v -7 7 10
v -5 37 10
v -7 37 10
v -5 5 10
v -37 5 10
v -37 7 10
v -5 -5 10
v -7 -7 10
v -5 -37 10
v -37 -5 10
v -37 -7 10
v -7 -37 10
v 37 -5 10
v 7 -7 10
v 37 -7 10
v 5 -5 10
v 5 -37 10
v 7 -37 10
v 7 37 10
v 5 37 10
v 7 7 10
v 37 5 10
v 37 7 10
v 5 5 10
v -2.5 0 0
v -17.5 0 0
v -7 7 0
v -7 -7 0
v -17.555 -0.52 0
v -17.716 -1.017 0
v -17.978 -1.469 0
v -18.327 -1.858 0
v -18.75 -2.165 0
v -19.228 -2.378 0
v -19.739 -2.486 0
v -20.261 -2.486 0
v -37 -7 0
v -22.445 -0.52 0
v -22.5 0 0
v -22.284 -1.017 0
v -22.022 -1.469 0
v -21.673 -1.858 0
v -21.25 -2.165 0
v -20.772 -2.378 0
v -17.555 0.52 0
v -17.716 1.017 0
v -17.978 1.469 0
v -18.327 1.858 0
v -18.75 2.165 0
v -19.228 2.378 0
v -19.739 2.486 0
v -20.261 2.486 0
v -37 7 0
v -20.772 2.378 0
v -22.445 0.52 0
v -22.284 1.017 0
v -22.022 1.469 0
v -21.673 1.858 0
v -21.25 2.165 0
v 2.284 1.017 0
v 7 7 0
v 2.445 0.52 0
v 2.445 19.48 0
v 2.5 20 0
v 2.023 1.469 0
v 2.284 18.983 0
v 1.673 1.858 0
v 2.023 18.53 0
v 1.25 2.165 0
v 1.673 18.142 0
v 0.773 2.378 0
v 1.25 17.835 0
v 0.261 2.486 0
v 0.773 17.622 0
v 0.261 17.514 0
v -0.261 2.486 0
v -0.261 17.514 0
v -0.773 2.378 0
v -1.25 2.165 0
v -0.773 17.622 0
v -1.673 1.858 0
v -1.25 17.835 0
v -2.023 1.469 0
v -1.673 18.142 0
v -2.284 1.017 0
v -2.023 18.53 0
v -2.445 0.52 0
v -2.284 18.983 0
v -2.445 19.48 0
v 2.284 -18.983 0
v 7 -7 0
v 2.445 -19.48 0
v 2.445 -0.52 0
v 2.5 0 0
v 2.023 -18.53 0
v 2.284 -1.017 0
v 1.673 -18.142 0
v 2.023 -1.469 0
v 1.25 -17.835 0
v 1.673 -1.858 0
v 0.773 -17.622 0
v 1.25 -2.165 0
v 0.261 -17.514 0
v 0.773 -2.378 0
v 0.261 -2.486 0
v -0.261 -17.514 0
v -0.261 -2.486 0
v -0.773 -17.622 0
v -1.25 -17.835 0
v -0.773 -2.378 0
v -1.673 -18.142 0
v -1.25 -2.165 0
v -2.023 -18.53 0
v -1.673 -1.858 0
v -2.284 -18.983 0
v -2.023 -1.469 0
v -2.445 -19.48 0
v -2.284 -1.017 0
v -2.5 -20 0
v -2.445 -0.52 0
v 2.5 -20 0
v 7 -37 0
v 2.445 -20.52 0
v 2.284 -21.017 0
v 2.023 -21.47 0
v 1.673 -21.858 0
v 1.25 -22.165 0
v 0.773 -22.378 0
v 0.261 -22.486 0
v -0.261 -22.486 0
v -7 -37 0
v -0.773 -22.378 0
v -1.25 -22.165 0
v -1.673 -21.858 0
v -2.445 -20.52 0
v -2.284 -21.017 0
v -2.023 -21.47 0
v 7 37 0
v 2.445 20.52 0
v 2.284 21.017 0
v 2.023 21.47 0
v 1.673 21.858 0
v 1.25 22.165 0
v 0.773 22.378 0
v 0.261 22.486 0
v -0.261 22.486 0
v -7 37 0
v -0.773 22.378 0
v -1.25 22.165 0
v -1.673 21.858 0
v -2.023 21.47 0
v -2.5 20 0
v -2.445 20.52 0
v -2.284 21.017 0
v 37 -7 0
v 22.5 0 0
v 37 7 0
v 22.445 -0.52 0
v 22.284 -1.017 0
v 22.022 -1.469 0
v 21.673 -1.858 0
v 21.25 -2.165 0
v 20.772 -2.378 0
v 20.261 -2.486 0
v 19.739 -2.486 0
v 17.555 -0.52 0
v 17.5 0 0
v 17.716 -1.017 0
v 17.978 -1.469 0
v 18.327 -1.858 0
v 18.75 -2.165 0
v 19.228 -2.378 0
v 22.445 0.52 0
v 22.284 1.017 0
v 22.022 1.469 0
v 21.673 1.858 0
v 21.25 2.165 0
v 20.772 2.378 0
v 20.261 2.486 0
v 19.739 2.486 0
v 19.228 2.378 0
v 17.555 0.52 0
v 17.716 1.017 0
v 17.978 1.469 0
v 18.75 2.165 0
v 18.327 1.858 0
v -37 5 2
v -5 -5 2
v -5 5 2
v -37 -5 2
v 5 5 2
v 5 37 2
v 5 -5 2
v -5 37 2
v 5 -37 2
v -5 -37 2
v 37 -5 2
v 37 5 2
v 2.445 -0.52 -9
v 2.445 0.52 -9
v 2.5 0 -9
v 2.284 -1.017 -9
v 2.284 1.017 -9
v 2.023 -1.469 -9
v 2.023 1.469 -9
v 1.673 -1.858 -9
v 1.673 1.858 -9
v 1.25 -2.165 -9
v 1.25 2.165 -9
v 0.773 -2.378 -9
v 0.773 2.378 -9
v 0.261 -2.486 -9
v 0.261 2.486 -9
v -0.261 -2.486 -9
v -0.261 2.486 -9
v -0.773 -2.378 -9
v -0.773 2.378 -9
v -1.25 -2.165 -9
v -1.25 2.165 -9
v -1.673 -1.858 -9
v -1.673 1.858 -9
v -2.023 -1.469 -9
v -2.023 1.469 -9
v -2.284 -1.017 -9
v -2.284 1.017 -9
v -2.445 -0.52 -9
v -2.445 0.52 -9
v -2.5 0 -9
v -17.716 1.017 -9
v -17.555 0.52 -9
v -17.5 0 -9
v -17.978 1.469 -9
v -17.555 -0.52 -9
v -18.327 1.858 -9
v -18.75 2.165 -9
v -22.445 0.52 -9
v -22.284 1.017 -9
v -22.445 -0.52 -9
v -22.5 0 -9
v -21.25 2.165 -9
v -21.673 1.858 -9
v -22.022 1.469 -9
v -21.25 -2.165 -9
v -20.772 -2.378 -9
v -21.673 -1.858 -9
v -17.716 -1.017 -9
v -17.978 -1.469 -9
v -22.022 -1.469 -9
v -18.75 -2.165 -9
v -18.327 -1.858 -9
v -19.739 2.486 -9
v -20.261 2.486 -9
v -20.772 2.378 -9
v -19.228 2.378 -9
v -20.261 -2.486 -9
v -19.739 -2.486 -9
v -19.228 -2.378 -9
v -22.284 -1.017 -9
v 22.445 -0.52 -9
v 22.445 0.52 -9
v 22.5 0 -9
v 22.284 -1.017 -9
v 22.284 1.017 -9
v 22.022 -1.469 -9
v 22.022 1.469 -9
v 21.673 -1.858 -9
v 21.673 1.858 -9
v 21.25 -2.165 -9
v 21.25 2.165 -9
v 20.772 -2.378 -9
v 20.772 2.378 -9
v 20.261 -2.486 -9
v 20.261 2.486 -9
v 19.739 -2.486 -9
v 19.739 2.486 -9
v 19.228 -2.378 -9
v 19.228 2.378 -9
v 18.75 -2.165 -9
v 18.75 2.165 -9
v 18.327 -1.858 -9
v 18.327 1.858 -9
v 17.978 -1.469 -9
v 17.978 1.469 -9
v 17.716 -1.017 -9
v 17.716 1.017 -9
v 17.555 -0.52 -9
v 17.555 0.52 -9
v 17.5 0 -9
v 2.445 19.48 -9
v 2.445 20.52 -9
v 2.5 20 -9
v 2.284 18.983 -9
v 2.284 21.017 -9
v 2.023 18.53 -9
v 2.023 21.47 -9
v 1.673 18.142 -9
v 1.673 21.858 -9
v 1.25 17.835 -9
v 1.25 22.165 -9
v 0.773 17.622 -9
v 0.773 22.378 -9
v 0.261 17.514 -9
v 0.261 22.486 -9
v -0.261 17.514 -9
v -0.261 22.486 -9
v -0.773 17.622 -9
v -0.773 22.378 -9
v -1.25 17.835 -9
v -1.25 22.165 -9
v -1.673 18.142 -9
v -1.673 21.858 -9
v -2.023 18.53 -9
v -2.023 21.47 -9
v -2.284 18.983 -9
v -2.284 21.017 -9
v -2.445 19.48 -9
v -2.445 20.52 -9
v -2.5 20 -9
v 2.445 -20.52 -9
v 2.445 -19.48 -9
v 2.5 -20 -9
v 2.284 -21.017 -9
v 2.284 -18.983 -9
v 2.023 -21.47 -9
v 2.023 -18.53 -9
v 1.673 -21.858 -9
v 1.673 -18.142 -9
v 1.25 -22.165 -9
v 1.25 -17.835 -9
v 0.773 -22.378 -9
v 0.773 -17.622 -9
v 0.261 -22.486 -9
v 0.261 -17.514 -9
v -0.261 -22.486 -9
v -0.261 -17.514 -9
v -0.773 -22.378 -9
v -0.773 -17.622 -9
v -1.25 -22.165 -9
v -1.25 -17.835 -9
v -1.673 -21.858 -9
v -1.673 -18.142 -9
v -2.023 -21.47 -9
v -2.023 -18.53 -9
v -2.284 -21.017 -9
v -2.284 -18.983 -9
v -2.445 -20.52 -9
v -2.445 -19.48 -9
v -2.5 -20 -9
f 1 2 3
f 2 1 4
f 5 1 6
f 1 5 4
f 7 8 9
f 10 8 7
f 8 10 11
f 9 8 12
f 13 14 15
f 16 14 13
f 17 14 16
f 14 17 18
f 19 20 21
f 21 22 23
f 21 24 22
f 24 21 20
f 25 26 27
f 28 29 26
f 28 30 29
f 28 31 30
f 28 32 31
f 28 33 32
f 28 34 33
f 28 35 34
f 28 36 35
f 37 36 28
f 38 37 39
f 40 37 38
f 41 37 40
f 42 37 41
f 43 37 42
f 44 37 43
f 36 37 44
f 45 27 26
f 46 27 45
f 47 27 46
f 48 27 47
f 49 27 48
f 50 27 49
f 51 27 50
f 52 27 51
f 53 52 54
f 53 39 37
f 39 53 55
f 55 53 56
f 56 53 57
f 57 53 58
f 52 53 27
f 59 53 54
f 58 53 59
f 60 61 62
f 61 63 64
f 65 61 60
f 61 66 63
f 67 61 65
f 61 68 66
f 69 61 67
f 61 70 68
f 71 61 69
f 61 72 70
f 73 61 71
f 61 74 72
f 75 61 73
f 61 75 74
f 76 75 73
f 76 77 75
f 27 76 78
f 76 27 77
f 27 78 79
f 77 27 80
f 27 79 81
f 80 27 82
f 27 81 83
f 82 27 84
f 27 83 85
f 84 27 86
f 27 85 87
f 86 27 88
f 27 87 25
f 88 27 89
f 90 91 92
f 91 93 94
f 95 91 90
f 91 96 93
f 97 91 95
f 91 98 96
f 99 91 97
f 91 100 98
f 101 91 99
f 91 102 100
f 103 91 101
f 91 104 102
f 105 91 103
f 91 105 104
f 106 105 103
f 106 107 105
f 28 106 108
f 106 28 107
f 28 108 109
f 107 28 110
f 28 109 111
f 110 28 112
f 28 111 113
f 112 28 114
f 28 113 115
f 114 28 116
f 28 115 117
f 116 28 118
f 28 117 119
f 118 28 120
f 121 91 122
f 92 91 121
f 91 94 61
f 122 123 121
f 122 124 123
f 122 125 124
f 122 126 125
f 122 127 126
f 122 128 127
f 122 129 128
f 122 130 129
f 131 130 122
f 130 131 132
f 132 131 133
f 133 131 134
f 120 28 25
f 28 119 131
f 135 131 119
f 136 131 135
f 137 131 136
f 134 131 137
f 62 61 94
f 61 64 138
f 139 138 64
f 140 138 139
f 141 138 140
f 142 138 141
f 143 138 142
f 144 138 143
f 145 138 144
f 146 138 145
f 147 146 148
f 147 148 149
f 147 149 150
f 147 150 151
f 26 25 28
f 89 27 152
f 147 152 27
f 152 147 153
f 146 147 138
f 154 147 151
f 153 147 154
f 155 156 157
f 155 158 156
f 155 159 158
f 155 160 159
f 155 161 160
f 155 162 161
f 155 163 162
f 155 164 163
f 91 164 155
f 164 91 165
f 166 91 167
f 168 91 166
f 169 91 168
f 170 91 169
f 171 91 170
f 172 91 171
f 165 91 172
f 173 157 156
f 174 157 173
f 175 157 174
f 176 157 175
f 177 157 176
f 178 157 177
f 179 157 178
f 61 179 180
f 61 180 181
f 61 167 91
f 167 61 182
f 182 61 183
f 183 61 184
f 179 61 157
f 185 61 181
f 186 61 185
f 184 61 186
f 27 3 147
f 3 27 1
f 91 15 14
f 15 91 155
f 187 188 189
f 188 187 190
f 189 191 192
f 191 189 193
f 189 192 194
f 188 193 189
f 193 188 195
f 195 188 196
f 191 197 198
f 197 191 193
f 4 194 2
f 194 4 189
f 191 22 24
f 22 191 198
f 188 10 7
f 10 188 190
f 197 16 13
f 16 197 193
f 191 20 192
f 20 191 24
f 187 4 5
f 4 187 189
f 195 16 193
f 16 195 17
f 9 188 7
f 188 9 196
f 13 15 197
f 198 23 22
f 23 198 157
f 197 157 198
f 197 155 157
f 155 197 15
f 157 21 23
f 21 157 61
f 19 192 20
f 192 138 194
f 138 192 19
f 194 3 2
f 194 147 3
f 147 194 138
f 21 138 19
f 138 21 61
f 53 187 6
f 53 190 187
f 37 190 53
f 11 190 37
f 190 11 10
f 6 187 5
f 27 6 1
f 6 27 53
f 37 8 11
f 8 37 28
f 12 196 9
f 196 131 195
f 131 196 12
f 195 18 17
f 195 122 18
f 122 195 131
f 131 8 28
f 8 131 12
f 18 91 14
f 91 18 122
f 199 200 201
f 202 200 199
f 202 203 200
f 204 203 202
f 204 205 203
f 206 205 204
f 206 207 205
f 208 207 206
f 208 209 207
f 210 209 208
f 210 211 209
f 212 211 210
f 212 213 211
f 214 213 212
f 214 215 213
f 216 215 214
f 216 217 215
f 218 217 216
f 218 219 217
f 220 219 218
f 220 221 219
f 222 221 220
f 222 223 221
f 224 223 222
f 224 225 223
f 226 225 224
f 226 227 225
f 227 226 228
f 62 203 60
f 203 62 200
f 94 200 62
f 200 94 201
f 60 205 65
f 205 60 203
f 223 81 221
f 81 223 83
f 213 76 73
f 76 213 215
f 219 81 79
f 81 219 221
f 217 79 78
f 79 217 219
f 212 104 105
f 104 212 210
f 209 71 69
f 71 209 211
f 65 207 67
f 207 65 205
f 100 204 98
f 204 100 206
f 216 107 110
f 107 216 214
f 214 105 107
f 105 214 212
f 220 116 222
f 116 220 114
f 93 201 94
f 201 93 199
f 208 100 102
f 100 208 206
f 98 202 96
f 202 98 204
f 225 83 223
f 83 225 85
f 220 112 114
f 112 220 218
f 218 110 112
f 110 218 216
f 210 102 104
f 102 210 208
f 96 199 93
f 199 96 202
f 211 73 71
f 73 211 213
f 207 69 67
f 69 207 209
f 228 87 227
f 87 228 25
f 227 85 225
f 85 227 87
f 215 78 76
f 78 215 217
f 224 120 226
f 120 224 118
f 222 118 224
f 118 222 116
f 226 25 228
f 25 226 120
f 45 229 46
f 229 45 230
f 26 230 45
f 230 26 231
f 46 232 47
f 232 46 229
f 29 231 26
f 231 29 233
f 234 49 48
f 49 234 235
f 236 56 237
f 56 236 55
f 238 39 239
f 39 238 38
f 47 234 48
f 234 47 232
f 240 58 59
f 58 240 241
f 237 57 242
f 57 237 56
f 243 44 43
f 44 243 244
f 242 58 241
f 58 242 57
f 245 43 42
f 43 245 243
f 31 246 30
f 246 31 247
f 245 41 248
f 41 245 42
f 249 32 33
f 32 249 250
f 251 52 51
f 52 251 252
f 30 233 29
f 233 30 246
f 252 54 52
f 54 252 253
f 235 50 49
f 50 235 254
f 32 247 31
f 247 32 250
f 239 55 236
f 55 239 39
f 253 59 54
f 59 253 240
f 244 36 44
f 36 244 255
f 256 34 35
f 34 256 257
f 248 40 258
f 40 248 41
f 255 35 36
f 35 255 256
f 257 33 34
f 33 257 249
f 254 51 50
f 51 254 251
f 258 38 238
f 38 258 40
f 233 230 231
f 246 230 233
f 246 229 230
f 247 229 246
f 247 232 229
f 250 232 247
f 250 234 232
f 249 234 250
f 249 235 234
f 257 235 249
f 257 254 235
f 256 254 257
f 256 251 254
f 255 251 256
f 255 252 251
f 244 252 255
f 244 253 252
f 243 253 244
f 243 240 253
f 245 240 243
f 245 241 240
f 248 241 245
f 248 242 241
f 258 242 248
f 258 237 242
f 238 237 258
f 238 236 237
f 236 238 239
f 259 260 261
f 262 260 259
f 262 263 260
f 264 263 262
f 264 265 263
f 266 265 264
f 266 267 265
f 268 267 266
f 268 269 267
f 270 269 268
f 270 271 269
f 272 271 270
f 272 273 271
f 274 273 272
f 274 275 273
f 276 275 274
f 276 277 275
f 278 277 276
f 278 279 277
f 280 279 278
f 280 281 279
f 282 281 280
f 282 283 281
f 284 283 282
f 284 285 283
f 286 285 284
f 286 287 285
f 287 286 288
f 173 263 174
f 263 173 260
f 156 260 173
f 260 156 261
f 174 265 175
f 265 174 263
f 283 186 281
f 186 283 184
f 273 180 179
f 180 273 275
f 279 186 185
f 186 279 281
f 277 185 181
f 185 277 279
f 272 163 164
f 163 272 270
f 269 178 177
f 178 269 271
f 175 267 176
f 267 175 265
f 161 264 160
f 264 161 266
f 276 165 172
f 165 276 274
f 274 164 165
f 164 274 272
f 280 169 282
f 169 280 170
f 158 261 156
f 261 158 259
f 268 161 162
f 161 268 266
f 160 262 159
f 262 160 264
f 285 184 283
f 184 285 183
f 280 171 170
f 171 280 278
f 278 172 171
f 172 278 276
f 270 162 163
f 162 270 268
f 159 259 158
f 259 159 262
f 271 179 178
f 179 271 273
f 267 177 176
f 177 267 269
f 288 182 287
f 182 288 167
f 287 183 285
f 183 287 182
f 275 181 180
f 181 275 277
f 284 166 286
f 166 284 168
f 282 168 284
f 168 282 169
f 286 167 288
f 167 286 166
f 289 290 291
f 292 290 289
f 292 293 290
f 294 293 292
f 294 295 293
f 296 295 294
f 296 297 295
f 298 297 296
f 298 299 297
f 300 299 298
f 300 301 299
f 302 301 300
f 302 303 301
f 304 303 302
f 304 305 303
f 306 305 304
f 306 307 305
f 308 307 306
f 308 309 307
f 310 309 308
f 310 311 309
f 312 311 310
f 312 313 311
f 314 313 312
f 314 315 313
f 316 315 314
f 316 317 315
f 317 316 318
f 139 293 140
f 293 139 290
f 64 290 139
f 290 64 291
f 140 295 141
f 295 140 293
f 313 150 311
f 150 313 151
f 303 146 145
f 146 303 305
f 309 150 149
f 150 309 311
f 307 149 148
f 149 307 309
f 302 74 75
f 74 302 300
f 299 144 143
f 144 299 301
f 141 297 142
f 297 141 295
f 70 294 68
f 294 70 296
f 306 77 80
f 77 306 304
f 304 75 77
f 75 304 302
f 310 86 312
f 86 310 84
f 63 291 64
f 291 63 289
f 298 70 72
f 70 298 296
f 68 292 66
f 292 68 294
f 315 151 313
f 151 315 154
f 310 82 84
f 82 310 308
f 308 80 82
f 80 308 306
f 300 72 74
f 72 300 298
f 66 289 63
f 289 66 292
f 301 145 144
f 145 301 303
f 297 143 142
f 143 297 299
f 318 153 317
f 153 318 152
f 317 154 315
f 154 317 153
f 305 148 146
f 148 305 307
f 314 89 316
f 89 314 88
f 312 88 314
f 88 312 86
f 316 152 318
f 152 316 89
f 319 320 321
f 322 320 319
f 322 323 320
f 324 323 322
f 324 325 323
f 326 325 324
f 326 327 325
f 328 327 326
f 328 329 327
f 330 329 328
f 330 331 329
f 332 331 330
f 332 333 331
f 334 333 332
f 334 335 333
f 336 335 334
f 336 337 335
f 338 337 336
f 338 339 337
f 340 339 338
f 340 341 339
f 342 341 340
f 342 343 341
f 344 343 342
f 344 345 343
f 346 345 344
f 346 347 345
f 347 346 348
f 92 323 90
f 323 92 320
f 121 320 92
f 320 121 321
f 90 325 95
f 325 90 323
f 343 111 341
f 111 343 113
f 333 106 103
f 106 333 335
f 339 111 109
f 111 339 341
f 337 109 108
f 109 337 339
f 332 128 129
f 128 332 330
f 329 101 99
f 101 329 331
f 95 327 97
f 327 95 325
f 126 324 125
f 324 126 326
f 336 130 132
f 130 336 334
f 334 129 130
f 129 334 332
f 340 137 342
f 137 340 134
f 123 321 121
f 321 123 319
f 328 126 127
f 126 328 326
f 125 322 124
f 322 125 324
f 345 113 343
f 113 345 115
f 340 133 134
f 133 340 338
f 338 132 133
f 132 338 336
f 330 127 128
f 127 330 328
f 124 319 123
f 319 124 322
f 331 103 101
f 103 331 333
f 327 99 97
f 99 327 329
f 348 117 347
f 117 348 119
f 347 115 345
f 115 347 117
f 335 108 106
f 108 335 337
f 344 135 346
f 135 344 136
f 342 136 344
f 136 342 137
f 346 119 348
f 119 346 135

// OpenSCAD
// Крестообразный паз с шипами для вставки в основание
// Модульная конструкция: центральное основание + 4 рукава + шипы

// Параметры (все размеры в мм)
center_size = 10;     // Размер центрального квадрата (внутри)
sleeve_length = 30;   // Длина рукава
groove_width = 10;    // Ширина паза (внутри) - для фанеры 9.3мм
wall_height = 10;     // Высота стенок
wall_thickness = 2;   // Толщина стенок

// Параметры шипов
dowel_diameter = 5;   // Диаметр шипа
dowel_depth = 9;      // Глубина шипа (высота)
dowel_spacing = 20;   // Шаг между шипами

// Вычисляемые размеры
total_width = groove_width + 2 * wall_thickness;  // 14 мм
center_total = center_size + 2 * wall_thickness;  // 14 мм

// 1. Метод: нарисовать основание
module draw_base() {
    difference() {
        cube([center_total, center_total, wall_height]);
        translate([wall_thickness, wall_thickness, wall_thickness])
            cube([center_size, center_size, wall_height]);
    }
}

// Модуль для создания одного рукава
module single_sleeve() {
    difference() {
        cube([sleeve_length, total_width, wall_height]);
        translate([0, wall_thickness, wall_thickness])
            cube([sleeve_length, groove_width, wall_height]);
    }
}

// Метод: вырезать отверстие в стенке основания
module cut_wall_opening(side) {
    if (side == 0) {
        translate([center_total - wall_thickness - 0.1, wall_thickness, wall_thickness])
            cube([wall_thickness + 0.2, groove_width, wall_height]);
    } else if (side == 1) {
        translate([wall_thickness, center_total - wall_thickness - 0.1, wall_thickness])
            cube([groove_width, wall_thickness + 0.2, wall_height]);
    } else if (side == 2) {
        translate([-0.1, wall_thickness, wall_thickness])
            cube([wall_thickness + 0.2, groove_width, wall_height]);
    } else if (side == 3) {
        translate([wall_thickness, -0.1, wall_thickness])
            cube([groove_width, wall_thickness + 0.2, wall_height]);
    }
}

// 2. Метод: прицепить рукав к основанию
module attach_sleeve(side) {
    if (side == 0) {
        translate([center_total, center_total/2 - total_width/2, 0])
            single_sleeve();
    } else if (side == 1) {
        translate([center_total/2 + total_width/2, center_total, 0])
            rotate([0, 0, 90])
                single_sleeve();
    } else if (side == 2) {
        translate([-sleeve_length, center_total/2 - total_width/2, 0])
            single_sleeve();
    } else if (side == 3) {
        translate([center_total/2 + total_width/2, -sleeve_length, 0])
            rotate([0, 0, 90])
                single_sleeve();
    }
}

// 3. Метод: добавить шип в позиции (x, y)
module add_dowel(x, y) {
    translate([x, y, -dowel_depth])
        cylinder(h=dowel_depth, d=dowel_diameter, $fn=30);
}

// Собираем крестообразную конструкцию с шипами
translate([-center_total/2, -center_total/2, 0]) {
    union() {
        difference() {
            draw_base();
            cut_wall_opening(0);  // Право
            cut_wall_opening(1);  // Верх
            cut_wall_opening(2);  // Лево
            cut_wall_opening(3);  // Низ
        }
        attach_sleeve(0);  // Право
        attach_sleeve(1);  // Верх
        attach_sleeve(2);  // Лево
        attach_sleeve(3);  // Низ

        // Шипы: центр + 4 направления
        add_dowel(center_total/2, center_total/2);                    // Центр
        add_dowel(center_total/2 - dowel_spacing, center_total/2);   // Лево
        add_dowel(center_total/2 + dowel_spacing, center_total/2);   // Право
        add_dowel(center_total/2, center_total/2 + dowel_spacing);   // Верх
        add_dowel(center_total/2, center_total/2 - dowel_spacing);   // Низ
    }
}

// Информация для проверки
echo("=== Размеры крестообразного паза с шипами ===");
echo("Количество шипов: 5 (центр + 4 направления)");
echo("Шаг между шипами:", dowel_spacing, "мм");
